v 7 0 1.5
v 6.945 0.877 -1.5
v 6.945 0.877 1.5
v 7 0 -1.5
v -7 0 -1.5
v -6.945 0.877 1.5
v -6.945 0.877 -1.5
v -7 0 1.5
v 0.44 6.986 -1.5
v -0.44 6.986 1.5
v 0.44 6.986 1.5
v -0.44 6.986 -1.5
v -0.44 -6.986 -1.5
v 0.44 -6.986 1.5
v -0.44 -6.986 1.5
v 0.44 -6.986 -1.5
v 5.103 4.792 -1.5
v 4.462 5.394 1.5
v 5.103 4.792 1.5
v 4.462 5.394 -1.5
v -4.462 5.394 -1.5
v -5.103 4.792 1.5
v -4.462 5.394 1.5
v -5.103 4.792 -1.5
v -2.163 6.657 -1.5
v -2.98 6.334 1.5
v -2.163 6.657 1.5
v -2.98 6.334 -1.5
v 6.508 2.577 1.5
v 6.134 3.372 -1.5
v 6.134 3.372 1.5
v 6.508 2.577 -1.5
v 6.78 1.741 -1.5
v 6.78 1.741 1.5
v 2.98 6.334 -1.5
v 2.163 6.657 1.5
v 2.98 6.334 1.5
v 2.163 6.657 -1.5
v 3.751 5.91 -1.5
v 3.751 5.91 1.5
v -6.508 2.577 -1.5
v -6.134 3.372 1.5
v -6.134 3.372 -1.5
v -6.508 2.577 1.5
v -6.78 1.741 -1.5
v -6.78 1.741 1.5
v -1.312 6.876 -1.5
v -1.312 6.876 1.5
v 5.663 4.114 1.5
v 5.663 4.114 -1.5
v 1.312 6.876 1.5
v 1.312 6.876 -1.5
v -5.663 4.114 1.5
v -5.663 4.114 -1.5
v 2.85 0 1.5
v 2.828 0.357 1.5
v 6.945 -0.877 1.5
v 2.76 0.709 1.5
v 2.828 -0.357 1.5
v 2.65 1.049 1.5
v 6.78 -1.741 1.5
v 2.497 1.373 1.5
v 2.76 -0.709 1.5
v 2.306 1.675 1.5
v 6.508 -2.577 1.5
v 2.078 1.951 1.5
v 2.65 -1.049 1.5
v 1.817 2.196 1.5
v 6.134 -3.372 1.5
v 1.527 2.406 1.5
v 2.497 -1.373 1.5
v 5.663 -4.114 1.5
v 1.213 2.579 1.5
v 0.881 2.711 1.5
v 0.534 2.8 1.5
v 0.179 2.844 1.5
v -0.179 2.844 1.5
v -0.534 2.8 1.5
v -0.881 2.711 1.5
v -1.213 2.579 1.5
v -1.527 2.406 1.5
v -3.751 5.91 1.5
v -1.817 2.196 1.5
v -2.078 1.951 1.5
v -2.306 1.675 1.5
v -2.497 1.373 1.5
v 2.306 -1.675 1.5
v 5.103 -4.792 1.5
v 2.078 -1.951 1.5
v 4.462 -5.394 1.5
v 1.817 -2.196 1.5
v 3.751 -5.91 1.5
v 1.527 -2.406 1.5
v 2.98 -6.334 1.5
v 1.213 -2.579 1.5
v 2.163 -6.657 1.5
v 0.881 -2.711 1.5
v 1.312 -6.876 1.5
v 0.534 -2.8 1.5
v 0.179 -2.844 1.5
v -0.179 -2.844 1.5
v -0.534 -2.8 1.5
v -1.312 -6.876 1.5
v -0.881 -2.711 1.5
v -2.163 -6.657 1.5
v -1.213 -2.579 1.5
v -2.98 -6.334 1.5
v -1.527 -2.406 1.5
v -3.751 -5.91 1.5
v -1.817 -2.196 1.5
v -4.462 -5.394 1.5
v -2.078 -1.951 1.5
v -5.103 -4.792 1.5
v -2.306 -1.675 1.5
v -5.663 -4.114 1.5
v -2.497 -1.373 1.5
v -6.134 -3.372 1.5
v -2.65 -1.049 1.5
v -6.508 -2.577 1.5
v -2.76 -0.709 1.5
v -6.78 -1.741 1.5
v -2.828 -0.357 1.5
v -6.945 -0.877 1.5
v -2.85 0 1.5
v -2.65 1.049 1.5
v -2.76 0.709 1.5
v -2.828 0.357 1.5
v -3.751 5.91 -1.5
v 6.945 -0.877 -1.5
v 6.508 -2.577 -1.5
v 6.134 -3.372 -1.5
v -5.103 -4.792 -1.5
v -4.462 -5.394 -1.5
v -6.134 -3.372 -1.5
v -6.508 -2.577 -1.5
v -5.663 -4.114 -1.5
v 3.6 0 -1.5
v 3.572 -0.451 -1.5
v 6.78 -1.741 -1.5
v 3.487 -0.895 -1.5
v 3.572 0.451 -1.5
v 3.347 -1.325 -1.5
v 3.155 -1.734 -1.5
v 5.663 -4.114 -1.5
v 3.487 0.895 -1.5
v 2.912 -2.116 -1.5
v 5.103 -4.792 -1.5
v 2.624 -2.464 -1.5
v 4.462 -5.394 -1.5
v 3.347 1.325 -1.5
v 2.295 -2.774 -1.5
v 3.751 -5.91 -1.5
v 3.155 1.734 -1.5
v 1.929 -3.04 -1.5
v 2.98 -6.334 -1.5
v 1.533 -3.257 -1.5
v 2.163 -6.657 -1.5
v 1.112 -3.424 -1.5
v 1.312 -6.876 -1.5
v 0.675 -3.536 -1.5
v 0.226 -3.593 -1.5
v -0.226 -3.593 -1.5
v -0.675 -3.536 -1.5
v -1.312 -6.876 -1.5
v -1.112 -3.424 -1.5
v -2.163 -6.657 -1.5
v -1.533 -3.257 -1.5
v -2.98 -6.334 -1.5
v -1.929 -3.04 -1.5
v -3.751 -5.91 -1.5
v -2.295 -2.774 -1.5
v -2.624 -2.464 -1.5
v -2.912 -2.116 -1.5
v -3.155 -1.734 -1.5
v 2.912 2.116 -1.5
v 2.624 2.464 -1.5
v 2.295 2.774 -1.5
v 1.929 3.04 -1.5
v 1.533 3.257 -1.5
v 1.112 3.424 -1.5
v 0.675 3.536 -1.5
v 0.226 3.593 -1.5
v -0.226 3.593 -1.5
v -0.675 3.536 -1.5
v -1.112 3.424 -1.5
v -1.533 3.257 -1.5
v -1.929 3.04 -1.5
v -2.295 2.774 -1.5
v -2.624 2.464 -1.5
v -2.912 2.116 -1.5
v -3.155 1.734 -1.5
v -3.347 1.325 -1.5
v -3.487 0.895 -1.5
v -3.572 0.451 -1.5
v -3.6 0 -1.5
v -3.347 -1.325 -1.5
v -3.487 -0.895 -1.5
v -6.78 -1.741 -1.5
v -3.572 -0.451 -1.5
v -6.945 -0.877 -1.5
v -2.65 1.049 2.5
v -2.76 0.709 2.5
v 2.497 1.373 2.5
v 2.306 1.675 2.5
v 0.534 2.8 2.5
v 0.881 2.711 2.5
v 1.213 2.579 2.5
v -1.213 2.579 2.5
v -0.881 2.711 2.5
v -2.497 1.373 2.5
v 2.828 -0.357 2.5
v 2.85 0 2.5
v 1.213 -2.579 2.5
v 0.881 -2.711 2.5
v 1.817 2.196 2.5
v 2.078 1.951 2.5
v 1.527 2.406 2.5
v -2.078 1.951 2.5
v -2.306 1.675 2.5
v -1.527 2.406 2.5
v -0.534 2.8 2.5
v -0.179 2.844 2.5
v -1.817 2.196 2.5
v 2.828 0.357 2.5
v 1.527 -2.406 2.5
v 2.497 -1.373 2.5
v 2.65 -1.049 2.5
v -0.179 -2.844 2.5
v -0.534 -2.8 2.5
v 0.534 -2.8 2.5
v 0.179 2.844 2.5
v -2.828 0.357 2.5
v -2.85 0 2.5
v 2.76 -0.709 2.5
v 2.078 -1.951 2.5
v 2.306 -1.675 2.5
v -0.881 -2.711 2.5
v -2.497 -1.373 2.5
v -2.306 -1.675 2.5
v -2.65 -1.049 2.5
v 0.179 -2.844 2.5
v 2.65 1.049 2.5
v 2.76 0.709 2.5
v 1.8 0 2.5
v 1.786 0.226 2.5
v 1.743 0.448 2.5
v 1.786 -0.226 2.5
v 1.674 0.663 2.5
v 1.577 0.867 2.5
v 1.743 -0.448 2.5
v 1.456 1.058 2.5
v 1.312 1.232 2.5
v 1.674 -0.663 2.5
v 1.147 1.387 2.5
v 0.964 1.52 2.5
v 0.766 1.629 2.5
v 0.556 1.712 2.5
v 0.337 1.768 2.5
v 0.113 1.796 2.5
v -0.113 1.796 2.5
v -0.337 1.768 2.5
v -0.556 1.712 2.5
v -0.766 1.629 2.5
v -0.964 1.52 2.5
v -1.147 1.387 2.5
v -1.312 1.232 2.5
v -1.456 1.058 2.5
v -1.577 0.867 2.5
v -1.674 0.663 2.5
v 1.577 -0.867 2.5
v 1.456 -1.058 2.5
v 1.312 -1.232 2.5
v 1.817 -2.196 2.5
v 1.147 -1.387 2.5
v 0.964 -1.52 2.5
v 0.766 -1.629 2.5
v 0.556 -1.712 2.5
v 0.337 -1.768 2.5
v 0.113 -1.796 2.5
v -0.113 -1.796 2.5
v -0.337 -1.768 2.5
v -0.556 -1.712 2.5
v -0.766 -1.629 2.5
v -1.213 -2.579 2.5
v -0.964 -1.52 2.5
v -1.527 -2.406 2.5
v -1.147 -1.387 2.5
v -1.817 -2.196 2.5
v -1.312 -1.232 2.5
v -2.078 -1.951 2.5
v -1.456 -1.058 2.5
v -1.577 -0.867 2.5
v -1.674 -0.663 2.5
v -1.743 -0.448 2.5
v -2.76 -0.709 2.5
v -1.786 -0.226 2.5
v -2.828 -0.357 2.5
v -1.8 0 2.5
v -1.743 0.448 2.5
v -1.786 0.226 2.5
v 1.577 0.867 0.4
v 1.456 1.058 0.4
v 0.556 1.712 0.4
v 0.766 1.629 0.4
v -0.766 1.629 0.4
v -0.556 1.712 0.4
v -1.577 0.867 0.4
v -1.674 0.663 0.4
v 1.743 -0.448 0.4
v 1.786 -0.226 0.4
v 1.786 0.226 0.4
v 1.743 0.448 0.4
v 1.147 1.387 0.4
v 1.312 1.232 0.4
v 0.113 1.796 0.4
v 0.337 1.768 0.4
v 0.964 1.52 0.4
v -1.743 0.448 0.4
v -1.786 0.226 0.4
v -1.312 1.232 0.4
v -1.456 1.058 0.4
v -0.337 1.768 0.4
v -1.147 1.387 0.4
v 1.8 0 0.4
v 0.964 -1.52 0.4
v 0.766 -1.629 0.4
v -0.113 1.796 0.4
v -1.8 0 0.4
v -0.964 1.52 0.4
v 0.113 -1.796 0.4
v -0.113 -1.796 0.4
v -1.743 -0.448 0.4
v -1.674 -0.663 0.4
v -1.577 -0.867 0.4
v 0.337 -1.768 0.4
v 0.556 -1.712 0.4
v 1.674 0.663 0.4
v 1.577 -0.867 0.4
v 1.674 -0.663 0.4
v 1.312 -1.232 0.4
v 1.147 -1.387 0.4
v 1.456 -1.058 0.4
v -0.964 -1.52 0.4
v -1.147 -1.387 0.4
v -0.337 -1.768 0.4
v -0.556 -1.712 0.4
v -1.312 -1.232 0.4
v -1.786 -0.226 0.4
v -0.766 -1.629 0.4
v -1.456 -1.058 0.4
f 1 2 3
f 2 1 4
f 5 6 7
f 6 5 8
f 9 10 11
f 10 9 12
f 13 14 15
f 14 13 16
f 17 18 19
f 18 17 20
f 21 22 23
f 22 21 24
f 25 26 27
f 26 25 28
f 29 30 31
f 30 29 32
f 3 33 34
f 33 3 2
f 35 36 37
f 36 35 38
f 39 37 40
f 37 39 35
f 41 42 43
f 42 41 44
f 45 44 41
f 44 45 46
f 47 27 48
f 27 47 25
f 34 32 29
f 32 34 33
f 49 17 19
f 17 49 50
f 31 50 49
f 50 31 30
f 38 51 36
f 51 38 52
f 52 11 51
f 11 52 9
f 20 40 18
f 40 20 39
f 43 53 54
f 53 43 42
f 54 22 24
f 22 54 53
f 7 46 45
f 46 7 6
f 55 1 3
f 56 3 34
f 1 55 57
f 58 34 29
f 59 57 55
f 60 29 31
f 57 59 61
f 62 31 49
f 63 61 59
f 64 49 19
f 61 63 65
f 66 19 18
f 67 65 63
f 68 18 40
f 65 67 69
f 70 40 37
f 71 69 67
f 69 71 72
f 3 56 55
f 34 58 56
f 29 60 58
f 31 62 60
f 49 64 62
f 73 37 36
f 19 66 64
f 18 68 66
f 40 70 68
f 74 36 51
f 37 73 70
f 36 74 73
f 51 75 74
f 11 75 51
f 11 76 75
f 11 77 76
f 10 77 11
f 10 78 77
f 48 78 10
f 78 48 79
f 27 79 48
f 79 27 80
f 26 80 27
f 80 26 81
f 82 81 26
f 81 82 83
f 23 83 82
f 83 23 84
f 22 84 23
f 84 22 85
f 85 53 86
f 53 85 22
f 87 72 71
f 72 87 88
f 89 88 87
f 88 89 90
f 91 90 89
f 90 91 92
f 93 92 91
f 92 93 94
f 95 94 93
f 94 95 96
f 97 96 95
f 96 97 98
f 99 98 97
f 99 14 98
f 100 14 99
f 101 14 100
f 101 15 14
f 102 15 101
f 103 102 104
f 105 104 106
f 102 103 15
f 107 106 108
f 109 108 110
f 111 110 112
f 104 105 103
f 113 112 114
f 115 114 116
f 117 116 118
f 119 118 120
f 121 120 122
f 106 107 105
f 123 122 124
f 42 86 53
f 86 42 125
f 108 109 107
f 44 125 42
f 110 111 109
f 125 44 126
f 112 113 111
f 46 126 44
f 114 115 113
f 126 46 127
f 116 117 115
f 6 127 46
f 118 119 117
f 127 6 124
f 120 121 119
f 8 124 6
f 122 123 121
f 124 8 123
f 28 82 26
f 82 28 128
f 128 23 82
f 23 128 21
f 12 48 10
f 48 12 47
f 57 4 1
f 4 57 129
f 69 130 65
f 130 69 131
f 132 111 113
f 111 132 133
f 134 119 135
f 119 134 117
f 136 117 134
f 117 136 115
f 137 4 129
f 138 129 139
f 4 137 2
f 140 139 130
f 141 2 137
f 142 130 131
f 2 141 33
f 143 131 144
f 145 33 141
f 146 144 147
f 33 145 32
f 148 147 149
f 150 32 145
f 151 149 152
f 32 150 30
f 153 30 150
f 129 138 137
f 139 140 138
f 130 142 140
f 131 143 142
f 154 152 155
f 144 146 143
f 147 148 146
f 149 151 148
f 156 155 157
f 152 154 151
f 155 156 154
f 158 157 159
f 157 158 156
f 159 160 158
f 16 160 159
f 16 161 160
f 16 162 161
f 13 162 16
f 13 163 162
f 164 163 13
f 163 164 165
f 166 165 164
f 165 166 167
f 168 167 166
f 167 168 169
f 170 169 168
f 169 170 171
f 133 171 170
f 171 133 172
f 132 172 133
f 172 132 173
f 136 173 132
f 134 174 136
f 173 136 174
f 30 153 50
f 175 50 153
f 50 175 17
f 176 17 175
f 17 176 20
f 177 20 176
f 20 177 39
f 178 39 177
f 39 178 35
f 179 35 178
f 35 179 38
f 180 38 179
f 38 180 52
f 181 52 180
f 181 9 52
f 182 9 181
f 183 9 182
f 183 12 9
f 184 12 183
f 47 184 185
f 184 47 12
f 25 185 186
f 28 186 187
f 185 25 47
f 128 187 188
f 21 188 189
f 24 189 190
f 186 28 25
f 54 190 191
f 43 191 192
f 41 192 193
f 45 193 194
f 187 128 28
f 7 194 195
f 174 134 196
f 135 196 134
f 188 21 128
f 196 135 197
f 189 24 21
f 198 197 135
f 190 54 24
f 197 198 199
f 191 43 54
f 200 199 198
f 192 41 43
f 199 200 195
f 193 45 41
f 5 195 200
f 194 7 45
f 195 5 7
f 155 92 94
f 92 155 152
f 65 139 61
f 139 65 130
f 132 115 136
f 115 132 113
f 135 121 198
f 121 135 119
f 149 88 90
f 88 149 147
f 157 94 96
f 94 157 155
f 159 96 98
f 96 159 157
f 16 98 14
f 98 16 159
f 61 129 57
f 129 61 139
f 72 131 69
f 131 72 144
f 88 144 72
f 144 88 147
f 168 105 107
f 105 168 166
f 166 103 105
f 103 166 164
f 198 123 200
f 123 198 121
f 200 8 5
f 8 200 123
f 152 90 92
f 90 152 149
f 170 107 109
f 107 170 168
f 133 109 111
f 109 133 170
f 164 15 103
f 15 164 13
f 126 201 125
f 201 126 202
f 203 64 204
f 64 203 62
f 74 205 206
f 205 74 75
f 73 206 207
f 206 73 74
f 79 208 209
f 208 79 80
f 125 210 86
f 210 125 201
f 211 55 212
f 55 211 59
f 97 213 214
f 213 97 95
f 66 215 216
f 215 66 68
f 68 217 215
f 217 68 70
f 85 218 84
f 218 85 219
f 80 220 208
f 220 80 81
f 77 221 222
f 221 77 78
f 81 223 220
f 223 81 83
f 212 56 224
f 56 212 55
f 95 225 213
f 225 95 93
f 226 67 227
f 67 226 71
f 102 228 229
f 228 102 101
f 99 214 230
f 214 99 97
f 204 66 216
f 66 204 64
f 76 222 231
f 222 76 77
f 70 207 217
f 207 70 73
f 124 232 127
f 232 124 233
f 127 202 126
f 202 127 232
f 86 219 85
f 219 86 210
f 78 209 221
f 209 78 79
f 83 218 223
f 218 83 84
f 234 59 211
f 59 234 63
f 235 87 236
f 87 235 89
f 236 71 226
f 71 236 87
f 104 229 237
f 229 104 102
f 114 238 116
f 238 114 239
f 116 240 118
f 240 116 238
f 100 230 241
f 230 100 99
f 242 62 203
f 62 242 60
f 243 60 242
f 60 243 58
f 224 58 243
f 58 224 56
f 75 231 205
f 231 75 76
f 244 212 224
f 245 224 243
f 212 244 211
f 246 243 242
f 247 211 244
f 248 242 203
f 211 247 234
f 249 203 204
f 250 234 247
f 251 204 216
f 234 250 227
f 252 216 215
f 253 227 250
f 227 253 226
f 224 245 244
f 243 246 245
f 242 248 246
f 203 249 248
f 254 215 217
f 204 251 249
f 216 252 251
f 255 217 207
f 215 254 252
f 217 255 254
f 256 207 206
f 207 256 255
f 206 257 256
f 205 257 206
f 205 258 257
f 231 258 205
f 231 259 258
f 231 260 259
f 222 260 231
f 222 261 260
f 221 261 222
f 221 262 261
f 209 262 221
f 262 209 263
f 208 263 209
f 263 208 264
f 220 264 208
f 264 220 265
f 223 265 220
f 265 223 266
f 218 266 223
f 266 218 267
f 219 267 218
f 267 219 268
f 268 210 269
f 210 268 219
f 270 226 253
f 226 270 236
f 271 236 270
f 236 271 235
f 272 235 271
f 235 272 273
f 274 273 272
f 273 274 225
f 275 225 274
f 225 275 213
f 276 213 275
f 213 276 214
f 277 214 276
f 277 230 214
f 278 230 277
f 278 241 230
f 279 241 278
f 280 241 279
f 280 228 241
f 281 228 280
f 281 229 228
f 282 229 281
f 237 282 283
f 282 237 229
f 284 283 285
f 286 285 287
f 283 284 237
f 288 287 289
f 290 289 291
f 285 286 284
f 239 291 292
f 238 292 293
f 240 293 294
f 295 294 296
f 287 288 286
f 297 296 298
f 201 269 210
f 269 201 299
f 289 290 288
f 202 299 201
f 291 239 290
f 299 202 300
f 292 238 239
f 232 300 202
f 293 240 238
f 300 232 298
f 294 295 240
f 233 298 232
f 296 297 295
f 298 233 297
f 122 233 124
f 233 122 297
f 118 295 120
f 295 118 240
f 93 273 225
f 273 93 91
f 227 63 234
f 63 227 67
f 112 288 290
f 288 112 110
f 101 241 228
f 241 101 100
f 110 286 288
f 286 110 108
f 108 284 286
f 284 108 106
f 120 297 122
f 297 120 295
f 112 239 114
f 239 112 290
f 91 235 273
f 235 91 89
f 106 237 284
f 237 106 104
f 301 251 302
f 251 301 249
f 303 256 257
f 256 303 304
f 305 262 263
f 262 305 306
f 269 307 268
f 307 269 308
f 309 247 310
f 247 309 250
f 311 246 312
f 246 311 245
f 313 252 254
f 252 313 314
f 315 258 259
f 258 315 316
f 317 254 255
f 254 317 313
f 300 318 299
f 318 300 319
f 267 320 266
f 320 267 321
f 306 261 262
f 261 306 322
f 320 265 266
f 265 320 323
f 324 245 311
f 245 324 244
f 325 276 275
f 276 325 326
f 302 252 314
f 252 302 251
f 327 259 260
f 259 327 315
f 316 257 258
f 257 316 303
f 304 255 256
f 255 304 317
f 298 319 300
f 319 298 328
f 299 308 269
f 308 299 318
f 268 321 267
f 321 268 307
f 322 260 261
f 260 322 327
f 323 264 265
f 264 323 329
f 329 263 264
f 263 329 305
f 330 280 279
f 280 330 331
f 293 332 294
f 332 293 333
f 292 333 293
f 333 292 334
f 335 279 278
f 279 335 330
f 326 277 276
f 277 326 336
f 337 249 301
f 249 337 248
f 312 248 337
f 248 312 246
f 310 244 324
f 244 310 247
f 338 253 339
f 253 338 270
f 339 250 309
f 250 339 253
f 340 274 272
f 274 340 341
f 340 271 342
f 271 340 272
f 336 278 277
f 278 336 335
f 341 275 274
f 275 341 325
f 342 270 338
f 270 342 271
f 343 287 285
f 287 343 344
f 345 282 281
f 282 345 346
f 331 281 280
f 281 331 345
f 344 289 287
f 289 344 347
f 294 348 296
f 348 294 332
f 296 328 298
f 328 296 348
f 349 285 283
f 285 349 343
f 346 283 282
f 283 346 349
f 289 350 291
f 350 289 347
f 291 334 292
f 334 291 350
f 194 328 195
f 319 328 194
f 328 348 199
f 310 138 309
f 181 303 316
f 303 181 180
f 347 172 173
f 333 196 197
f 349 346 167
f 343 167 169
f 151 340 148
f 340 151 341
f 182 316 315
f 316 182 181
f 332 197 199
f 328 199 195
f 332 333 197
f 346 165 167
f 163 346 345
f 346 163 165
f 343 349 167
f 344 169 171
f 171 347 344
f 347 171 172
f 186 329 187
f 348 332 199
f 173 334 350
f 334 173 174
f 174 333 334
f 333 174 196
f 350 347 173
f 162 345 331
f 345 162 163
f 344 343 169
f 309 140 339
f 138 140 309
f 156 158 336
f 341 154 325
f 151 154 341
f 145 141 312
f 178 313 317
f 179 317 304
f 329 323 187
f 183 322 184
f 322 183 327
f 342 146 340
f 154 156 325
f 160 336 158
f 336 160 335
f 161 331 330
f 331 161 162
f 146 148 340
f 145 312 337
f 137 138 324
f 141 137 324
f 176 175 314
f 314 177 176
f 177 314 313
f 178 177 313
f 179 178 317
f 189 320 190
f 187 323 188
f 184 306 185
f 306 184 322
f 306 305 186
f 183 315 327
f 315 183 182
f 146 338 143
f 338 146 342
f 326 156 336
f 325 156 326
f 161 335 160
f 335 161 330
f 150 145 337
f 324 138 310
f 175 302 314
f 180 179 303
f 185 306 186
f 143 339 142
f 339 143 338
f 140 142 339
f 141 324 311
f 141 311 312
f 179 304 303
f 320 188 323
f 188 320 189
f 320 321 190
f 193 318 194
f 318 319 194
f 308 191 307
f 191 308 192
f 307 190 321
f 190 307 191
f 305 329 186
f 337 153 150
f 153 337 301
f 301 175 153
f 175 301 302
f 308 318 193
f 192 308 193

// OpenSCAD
$fn = 50;


difference() {
	union() {
		translate(v = [0, 0, -1.5000000000]) {
			rotate(a = [0, 0, 0]) {
				cylinder(h = 3, r = 7.0000000000);
			}
		}
		translate(v = [0, 0, -1.5000000000]) {
			rotate(a = [0, 0, 0]) {
				cylinder(h = 4, r = 2.8500000000);
			}
		}
	}
	union() {
		translate(v = [0, 0, -125.0000000000]) {
			rotate(a = [0, 0, 0]) {
				cylinder(h = 250, r = 1.8000000000);
			}
		}
		#translate(v = [0, 0, 0.4000000000]) {
			rotate(a = [0, 180, 0]) {
				cylinder(h = 1.9000000000, r1 = 1.8000000000, r2 = 3.6000000000);
			}
		}
		#translate(v = [0, 0, 2.5000000000]) {
			rotate(a = [0, 180, 0]) {
				cylinder(h = 4, r = 1.8000000000);
			}
		}
	}
}
